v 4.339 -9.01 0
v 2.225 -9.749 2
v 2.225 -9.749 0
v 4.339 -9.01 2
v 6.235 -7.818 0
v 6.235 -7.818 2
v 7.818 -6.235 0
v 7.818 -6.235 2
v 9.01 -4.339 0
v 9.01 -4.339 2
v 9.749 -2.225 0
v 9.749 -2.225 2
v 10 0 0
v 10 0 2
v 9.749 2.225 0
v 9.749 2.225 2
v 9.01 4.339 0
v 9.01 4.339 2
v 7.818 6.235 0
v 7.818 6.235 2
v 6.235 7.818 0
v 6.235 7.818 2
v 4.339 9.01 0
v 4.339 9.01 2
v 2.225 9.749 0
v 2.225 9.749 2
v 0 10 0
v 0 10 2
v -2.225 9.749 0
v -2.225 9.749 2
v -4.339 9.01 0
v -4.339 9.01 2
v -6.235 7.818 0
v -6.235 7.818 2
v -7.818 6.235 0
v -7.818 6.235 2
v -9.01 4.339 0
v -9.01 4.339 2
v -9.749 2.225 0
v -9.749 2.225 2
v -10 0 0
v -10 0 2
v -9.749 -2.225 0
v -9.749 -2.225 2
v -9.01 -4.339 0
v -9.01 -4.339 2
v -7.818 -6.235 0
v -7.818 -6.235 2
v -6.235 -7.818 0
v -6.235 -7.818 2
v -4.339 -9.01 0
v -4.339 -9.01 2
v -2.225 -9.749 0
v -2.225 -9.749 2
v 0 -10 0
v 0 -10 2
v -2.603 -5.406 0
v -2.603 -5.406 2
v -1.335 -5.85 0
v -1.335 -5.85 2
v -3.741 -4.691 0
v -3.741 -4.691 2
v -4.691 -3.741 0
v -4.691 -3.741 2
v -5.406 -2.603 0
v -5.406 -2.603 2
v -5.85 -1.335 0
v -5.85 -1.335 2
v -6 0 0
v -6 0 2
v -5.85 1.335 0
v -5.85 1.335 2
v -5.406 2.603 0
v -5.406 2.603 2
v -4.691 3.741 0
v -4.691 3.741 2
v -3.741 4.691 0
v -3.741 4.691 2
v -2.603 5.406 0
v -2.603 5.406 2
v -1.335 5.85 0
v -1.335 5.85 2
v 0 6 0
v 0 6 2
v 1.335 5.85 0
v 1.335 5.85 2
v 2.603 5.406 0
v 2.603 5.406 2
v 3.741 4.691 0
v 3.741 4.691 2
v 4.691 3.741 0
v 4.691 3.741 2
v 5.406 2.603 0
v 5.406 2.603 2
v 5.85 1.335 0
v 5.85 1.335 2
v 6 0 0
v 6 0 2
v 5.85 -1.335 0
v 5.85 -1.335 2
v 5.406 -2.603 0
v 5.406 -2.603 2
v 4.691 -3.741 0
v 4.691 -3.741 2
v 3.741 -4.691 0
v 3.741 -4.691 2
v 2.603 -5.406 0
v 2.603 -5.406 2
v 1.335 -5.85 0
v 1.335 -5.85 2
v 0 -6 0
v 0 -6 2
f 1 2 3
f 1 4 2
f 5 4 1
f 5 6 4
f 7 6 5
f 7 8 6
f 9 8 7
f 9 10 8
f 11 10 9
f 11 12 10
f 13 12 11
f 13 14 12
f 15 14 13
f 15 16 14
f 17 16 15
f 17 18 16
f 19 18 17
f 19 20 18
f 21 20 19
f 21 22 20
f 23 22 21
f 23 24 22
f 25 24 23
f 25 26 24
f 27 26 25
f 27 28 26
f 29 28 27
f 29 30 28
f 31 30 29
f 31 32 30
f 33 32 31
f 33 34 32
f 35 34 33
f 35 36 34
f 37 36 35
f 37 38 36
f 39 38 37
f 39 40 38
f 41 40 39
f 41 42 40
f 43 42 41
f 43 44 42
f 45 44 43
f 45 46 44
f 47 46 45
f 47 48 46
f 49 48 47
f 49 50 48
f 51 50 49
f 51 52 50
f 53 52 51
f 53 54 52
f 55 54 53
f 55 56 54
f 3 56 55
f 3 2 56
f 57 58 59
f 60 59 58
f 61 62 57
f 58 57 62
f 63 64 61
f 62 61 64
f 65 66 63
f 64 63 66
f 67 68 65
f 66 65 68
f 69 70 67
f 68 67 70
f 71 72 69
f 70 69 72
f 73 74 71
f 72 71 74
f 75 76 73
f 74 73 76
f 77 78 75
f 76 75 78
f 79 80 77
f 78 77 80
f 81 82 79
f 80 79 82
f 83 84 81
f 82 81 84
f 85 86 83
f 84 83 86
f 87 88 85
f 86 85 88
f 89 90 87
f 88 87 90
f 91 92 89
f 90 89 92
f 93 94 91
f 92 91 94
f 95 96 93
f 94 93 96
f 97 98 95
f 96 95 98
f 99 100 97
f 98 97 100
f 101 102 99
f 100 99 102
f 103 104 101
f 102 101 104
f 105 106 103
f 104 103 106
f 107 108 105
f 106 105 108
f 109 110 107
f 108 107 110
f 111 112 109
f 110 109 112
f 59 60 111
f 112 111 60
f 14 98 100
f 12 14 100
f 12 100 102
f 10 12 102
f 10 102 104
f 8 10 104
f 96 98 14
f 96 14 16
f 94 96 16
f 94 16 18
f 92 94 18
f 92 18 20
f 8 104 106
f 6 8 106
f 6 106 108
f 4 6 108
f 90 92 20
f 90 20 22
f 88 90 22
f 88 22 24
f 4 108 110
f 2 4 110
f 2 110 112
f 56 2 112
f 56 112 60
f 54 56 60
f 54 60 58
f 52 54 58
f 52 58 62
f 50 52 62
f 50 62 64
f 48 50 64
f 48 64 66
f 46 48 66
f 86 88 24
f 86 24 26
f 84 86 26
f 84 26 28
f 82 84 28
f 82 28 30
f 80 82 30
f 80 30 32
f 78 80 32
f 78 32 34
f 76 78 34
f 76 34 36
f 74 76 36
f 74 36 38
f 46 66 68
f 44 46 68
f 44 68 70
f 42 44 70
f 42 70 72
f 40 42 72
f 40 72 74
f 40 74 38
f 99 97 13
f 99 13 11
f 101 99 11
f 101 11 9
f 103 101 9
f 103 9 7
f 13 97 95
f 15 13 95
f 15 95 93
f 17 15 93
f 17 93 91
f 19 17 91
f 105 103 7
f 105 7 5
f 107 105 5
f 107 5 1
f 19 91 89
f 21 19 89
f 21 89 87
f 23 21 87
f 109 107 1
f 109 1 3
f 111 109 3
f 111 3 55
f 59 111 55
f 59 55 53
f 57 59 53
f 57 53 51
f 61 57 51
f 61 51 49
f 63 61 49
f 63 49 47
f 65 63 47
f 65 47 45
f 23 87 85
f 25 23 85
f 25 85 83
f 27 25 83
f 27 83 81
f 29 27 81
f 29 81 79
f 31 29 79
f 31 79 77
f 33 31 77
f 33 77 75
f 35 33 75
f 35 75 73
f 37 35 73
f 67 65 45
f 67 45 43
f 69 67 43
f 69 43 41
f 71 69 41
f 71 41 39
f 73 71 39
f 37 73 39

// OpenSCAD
// projection(cut = true) takes the slice at z = 0 instead of the silhouette.
$fn = 28;
linear_extrude(2) projection(cut = true)
  translate([0, 0, -5]) difference() {
    cylinder(h = 20, r = 10);
    cylinder(h = 21, r = 6);
  }
